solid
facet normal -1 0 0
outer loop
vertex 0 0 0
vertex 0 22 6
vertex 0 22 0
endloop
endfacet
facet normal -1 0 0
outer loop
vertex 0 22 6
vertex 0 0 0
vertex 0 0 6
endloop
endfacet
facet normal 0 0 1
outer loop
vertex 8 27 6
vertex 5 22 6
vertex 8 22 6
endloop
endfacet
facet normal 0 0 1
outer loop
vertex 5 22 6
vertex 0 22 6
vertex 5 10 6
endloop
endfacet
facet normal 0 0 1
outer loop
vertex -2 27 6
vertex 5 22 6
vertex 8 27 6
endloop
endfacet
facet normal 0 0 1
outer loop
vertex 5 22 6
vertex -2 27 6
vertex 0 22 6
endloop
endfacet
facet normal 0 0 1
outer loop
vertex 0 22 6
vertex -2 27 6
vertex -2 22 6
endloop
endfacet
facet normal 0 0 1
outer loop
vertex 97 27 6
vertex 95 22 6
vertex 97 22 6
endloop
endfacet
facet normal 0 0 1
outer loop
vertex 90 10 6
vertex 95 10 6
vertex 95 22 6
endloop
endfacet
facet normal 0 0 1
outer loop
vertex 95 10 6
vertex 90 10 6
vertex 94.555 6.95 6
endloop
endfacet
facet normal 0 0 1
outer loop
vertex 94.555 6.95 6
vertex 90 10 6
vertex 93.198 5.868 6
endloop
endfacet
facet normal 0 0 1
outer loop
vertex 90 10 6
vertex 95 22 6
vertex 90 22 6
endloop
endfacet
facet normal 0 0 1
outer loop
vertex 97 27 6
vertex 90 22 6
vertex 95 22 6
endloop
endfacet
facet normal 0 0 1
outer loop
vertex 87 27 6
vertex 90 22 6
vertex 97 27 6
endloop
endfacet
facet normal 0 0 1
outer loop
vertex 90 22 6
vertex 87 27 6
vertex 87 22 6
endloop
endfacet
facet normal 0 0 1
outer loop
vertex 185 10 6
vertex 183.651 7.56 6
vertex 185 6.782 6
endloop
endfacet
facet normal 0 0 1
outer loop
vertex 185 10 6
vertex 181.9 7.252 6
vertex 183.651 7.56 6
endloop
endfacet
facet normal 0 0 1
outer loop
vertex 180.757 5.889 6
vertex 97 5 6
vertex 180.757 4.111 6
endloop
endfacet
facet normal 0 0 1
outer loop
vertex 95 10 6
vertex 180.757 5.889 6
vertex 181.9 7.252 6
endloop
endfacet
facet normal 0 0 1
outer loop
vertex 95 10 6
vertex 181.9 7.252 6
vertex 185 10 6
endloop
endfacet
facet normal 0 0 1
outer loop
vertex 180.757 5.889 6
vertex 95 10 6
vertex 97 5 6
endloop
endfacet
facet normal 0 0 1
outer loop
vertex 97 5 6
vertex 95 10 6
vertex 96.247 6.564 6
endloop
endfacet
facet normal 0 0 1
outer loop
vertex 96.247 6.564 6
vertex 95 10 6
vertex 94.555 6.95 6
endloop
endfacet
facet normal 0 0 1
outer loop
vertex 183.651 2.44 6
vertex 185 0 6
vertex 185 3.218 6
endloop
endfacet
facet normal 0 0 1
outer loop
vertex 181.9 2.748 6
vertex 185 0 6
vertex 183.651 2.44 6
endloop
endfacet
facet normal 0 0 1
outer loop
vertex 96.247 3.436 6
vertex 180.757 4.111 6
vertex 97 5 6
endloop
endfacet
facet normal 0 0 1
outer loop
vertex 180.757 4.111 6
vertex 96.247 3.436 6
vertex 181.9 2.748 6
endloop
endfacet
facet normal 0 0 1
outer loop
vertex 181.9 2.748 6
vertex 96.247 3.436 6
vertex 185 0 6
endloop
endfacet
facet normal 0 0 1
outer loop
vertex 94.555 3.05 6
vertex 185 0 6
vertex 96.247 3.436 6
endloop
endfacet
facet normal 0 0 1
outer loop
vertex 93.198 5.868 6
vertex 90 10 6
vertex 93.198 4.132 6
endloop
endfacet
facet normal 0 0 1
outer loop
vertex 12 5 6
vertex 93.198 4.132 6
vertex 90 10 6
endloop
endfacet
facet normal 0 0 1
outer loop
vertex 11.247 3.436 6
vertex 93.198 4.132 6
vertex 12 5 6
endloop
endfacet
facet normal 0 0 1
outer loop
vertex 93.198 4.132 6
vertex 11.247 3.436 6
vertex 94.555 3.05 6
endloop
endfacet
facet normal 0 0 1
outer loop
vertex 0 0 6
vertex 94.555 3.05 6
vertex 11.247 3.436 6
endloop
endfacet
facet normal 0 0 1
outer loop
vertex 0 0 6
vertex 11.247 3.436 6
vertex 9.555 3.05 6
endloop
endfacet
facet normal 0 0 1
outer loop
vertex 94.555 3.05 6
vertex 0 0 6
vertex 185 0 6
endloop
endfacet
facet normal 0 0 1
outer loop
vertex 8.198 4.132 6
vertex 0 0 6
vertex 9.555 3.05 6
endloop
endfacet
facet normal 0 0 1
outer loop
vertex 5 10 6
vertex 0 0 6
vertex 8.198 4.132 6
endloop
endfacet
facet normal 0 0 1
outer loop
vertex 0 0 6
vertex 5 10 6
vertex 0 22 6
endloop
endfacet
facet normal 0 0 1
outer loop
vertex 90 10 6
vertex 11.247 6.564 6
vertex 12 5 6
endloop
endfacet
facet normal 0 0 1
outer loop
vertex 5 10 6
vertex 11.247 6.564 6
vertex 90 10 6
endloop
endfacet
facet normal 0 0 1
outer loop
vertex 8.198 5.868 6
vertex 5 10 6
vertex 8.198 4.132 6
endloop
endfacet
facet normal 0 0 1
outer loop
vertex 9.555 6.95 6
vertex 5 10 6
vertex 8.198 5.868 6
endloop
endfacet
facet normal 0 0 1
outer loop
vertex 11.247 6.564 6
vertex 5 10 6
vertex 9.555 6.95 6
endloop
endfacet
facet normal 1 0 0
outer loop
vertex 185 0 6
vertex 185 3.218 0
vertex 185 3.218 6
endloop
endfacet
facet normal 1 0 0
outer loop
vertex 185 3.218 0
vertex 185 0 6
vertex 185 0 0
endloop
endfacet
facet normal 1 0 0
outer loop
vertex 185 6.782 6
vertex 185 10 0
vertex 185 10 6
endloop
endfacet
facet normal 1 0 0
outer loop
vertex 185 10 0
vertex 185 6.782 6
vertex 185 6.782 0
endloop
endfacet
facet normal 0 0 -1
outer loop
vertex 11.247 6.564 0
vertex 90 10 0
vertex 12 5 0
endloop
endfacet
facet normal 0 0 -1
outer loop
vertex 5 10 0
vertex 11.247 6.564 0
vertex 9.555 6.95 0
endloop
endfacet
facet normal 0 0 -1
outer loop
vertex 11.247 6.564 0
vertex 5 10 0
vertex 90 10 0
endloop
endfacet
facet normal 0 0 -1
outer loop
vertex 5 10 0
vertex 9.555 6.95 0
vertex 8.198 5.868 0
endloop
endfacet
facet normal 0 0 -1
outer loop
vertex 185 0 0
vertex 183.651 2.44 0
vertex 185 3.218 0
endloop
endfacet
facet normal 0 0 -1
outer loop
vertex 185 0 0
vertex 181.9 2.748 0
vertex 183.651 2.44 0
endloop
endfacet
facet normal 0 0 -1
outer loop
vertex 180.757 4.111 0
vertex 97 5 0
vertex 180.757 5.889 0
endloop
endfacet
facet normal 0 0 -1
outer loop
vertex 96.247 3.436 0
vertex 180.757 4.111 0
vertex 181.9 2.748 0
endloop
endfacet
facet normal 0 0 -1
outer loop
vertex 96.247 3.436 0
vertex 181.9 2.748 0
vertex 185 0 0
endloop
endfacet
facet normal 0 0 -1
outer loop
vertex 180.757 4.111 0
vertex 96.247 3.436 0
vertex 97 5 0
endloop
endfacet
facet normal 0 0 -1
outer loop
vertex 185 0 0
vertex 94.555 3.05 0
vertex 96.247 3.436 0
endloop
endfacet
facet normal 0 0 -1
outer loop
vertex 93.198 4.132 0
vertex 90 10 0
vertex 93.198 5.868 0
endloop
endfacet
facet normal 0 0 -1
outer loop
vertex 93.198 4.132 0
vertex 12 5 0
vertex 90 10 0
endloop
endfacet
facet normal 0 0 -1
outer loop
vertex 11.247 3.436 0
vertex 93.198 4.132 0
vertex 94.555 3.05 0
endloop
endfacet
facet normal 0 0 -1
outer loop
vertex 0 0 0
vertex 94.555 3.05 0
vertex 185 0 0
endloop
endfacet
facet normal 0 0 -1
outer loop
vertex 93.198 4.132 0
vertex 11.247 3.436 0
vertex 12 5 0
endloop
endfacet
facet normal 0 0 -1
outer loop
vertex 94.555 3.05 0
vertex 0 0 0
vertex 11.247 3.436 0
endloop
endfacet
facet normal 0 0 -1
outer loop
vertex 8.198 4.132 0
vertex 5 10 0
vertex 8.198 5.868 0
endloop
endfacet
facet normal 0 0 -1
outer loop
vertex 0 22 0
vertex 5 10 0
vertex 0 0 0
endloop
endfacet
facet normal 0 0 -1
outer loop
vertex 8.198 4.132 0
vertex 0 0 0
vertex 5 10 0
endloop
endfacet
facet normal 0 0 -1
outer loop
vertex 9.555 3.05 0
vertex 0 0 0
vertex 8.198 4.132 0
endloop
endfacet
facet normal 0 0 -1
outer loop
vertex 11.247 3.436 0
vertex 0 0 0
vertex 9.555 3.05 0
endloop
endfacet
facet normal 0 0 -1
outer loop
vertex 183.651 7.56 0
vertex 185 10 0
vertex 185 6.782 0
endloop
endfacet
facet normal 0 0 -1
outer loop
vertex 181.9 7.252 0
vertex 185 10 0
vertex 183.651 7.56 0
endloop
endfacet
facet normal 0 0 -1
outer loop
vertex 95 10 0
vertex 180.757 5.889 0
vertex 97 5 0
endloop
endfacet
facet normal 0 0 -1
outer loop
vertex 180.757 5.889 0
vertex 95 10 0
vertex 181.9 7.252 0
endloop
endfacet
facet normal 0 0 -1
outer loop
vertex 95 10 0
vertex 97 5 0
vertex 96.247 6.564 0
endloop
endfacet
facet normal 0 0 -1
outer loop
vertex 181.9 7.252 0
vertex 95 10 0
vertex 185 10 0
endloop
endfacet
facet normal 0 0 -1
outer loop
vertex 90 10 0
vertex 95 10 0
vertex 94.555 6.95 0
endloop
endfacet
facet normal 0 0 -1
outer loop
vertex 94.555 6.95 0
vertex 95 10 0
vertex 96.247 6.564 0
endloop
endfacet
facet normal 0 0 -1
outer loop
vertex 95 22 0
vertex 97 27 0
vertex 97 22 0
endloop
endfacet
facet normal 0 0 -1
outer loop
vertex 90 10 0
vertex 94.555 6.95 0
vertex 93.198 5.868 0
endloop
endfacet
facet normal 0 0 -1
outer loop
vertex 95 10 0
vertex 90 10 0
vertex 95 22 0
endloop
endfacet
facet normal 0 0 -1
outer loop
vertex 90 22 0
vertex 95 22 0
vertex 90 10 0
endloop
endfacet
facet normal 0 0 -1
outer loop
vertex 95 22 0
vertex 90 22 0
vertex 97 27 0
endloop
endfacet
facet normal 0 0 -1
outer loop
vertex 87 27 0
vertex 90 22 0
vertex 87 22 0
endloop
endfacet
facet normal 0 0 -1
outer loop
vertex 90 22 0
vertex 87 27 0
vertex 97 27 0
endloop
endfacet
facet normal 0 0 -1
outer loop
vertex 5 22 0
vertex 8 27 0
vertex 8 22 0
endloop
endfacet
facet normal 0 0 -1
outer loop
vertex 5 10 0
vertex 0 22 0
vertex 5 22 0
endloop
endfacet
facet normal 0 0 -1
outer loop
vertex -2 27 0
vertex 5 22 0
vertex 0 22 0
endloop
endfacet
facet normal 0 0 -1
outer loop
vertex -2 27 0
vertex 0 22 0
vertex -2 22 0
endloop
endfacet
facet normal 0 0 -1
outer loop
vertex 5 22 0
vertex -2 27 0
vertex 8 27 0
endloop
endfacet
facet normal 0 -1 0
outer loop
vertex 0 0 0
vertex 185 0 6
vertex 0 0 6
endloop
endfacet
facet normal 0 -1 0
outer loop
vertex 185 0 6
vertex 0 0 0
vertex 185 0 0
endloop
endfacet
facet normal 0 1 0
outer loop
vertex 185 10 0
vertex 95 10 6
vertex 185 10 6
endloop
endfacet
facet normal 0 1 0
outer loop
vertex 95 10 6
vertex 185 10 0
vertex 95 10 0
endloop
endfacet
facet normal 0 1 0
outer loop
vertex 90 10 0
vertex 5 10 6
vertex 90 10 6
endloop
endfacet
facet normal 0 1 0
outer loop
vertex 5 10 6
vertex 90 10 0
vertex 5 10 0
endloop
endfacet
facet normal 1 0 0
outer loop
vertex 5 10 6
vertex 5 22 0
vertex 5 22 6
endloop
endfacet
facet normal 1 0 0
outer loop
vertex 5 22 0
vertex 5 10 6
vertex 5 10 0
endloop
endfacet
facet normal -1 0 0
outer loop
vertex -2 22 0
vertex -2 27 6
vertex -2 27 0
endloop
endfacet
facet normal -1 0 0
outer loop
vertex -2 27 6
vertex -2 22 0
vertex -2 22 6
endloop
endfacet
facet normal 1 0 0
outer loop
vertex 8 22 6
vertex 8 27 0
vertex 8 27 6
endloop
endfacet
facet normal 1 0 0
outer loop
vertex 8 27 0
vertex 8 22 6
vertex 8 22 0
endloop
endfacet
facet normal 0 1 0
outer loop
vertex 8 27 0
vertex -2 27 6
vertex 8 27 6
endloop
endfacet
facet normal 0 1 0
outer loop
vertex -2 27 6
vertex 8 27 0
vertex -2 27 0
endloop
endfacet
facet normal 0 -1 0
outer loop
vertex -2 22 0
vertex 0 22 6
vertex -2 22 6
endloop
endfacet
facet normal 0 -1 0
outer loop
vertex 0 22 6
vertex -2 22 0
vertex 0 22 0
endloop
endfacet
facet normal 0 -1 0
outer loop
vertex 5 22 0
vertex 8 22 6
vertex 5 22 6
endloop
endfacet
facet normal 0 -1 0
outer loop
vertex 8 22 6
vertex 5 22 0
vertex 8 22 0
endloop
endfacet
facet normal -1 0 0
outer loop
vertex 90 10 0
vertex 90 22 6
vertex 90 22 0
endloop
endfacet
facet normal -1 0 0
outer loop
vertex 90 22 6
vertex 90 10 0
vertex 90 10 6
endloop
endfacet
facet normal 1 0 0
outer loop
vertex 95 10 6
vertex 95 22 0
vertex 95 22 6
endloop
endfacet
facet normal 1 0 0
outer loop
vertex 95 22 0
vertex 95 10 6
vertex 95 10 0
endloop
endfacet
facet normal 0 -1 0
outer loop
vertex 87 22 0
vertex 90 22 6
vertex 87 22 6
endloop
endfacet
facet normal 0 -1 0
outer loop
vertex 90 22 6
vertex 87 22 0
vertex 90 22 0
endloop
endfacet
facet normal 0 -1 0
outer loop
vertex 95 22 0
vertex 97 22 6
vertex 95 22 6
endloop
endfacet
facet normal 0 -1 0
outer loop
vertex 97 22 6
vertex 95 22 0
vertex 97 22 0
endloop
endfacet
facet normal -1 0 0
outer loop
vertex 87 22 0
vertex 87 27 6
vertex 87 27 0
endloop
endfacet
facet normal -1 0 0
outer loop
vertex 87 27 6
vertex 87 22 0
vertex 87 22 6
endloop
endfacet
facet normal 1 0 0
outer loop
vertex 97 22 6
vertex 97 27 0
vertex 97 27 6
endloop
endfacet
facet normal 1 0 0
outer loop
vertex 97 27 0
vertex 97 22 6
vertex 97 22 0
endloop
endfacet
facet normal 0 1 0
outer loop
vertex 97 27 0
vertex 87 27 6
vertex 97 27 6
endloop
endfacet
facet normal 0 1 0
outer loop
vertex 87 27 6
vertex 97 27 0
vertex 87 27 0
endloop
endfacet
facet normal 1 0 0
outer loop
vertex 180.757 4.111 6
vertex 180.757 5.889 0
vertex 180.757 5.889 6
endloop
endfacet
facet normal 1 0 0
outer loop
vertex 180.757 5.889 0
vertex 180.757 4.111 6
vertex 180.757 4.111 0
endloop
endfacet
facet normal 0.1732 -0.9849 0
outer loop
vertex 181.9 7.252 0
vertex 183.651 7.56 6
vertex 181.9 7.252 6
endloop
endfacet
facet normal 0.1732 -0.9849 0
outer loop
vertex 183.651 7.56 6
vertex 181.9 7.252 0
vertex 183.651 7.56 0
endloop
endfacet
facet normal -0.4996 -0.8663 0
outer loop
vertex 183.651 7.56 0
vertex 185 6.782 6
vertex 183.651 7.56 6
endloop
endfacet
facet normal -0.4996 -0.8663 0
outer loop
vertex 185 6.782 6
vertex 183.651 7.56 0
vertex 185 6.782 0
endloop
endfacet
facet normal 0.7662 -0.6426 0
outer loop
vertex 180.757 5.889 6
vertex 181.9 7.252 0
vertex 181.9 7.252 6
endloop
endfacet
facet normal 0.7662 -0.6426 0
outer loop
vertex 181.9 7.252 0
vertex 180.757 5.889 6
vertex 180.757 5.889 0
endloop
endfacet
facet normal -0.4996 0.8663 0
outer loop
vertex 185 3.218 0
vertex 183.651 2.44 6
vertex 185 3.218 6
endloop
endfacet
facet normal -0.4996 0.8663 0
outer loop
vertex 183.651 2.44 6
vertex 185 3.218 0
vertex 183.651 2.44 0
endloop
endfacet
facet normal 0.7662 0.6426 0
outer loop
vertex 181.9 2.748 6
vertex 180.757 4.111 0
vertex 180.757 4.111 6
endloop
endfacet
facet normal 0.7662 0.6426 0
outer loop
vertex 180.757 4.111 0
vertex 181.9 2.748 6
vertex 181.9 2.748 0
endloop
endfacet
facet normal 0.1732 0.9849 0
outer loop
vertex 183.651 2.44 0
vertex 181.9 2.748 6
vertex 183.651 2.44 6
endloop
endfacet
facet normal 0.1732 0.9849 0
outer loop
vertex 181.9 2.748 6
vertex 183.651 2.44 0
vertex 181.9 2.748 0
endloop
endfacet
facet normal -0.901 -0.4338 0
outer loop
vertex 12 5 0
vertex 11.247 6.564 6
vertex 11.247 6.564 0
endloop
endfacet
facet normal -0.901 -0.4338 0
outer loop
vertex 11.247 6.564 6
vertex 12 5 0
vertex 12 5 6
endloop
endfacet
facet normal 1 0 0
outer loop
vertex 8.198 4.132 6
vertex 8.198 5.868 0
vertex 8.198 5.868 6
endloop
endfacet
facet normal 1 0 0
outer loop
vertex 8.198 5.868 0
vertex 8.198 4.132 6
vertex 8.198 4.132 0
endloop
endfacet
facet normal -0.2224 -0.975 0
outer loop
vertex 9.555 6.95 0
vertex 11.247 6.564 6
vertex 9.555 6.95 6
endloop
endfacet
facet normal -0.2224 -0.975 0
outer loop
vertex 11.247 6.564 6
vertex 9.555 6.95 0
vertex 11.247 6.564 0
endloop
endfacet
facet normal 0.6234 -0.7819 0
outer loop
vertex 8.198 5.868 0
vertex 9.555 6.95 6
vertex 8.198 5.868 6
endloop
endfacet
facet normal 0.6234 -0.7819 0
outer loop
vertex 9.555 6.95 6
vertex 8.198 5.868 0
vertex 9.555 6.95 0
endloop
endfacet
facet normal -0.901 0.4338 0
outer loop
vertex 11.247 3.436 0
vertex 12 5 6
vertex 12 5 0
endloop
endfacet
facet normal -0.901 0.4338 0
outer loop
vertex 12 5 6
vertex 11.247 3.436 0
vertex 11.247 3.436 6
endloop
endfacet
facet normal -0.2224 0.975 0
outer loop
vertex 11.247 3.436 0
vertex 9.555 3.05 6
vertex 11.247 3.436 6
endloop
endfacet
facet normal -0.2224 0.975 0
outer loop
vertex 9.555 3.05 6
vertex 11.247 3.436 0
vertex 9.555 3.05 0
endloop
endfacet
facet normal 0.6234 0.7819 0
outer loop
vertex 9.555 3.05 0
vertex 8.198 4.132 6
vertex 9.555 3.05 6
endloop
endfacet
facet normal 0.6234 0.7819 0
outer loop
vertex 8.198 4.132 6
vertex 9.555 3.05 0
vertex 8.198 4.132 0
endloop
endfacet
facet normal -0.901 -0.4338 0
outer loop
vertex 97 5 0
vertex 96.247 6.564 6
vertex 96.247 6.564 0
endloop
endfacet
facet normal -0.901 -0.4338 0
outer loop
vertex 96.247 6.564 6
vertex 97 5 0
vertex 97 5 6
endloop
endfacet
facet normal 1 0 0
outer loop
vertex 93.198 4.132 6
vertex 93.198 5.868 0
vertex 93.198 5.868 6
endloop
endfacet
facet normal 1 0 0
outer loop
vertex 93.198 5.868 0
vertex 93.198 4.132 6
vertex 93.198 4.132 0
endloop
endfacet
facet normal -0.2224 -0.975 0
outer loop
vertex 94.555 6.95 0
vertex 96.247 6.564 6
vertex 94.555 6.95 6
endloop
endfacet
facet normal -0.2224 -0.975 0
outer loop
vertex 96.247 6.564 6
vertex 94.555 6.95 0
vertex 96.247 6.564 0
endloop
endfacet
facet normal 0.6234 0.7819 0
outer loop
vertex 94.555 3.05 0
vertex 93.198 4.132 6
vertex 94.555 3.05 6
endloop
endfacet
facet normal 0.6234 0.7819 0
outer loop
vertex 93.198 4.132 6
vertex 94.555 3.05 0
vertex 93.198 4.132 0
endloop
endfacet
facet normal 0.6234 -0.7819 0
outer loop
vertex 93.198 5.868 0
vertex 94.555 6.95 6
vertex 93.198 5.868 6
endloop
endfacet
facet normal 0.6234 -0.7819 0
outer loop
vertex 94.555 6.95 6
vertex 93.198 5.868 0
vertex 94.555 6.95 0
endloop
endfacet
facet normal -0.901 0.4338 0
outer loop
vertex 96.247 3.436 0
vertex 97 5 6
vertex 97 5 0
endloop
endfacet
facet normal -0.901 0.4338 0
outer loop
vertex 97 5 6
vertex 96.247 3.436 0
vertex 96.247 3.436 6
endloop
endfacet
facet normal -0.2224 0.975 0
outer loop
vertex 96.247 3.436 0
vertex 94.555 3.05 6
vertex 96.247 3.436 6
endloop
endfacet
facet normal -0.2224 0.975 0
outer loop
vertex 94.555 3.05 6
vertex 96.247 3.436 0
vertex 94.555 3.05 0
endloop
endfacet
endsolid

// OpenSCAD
// iphone 83.4mm wide  12mm deep    1000mm or more endpoints
// 4mm bamboo 5mm rod  85mm width

dz=6;
dx=185;
thickness=10;
phonethickness=12;

module body() {
    union() {
        cube([dx,10,dz]);
        cube([5,thickness+phonethickness+3,dz]);
        #translate([-2,thickness+phonethickness,0]) cube([10,5,dz]);
        translate([10+80,0,0]) cube([5,thickness+phonethickness,dz]);
        #translate([10+80-3,thickness+phonethickness,0]) cube([10,5,dz]);
    }
}

module holes() {
        #translate([dx-1.8,thickness/2,0]) cylinder(dz,d=5.2);
        translate([10,thickness/2,0]) cylinder(dz,d=4);
        translate([95,thickness/2,0]) cylinder(dz,d=4);
}
difference() {
body();
    holes();
}
